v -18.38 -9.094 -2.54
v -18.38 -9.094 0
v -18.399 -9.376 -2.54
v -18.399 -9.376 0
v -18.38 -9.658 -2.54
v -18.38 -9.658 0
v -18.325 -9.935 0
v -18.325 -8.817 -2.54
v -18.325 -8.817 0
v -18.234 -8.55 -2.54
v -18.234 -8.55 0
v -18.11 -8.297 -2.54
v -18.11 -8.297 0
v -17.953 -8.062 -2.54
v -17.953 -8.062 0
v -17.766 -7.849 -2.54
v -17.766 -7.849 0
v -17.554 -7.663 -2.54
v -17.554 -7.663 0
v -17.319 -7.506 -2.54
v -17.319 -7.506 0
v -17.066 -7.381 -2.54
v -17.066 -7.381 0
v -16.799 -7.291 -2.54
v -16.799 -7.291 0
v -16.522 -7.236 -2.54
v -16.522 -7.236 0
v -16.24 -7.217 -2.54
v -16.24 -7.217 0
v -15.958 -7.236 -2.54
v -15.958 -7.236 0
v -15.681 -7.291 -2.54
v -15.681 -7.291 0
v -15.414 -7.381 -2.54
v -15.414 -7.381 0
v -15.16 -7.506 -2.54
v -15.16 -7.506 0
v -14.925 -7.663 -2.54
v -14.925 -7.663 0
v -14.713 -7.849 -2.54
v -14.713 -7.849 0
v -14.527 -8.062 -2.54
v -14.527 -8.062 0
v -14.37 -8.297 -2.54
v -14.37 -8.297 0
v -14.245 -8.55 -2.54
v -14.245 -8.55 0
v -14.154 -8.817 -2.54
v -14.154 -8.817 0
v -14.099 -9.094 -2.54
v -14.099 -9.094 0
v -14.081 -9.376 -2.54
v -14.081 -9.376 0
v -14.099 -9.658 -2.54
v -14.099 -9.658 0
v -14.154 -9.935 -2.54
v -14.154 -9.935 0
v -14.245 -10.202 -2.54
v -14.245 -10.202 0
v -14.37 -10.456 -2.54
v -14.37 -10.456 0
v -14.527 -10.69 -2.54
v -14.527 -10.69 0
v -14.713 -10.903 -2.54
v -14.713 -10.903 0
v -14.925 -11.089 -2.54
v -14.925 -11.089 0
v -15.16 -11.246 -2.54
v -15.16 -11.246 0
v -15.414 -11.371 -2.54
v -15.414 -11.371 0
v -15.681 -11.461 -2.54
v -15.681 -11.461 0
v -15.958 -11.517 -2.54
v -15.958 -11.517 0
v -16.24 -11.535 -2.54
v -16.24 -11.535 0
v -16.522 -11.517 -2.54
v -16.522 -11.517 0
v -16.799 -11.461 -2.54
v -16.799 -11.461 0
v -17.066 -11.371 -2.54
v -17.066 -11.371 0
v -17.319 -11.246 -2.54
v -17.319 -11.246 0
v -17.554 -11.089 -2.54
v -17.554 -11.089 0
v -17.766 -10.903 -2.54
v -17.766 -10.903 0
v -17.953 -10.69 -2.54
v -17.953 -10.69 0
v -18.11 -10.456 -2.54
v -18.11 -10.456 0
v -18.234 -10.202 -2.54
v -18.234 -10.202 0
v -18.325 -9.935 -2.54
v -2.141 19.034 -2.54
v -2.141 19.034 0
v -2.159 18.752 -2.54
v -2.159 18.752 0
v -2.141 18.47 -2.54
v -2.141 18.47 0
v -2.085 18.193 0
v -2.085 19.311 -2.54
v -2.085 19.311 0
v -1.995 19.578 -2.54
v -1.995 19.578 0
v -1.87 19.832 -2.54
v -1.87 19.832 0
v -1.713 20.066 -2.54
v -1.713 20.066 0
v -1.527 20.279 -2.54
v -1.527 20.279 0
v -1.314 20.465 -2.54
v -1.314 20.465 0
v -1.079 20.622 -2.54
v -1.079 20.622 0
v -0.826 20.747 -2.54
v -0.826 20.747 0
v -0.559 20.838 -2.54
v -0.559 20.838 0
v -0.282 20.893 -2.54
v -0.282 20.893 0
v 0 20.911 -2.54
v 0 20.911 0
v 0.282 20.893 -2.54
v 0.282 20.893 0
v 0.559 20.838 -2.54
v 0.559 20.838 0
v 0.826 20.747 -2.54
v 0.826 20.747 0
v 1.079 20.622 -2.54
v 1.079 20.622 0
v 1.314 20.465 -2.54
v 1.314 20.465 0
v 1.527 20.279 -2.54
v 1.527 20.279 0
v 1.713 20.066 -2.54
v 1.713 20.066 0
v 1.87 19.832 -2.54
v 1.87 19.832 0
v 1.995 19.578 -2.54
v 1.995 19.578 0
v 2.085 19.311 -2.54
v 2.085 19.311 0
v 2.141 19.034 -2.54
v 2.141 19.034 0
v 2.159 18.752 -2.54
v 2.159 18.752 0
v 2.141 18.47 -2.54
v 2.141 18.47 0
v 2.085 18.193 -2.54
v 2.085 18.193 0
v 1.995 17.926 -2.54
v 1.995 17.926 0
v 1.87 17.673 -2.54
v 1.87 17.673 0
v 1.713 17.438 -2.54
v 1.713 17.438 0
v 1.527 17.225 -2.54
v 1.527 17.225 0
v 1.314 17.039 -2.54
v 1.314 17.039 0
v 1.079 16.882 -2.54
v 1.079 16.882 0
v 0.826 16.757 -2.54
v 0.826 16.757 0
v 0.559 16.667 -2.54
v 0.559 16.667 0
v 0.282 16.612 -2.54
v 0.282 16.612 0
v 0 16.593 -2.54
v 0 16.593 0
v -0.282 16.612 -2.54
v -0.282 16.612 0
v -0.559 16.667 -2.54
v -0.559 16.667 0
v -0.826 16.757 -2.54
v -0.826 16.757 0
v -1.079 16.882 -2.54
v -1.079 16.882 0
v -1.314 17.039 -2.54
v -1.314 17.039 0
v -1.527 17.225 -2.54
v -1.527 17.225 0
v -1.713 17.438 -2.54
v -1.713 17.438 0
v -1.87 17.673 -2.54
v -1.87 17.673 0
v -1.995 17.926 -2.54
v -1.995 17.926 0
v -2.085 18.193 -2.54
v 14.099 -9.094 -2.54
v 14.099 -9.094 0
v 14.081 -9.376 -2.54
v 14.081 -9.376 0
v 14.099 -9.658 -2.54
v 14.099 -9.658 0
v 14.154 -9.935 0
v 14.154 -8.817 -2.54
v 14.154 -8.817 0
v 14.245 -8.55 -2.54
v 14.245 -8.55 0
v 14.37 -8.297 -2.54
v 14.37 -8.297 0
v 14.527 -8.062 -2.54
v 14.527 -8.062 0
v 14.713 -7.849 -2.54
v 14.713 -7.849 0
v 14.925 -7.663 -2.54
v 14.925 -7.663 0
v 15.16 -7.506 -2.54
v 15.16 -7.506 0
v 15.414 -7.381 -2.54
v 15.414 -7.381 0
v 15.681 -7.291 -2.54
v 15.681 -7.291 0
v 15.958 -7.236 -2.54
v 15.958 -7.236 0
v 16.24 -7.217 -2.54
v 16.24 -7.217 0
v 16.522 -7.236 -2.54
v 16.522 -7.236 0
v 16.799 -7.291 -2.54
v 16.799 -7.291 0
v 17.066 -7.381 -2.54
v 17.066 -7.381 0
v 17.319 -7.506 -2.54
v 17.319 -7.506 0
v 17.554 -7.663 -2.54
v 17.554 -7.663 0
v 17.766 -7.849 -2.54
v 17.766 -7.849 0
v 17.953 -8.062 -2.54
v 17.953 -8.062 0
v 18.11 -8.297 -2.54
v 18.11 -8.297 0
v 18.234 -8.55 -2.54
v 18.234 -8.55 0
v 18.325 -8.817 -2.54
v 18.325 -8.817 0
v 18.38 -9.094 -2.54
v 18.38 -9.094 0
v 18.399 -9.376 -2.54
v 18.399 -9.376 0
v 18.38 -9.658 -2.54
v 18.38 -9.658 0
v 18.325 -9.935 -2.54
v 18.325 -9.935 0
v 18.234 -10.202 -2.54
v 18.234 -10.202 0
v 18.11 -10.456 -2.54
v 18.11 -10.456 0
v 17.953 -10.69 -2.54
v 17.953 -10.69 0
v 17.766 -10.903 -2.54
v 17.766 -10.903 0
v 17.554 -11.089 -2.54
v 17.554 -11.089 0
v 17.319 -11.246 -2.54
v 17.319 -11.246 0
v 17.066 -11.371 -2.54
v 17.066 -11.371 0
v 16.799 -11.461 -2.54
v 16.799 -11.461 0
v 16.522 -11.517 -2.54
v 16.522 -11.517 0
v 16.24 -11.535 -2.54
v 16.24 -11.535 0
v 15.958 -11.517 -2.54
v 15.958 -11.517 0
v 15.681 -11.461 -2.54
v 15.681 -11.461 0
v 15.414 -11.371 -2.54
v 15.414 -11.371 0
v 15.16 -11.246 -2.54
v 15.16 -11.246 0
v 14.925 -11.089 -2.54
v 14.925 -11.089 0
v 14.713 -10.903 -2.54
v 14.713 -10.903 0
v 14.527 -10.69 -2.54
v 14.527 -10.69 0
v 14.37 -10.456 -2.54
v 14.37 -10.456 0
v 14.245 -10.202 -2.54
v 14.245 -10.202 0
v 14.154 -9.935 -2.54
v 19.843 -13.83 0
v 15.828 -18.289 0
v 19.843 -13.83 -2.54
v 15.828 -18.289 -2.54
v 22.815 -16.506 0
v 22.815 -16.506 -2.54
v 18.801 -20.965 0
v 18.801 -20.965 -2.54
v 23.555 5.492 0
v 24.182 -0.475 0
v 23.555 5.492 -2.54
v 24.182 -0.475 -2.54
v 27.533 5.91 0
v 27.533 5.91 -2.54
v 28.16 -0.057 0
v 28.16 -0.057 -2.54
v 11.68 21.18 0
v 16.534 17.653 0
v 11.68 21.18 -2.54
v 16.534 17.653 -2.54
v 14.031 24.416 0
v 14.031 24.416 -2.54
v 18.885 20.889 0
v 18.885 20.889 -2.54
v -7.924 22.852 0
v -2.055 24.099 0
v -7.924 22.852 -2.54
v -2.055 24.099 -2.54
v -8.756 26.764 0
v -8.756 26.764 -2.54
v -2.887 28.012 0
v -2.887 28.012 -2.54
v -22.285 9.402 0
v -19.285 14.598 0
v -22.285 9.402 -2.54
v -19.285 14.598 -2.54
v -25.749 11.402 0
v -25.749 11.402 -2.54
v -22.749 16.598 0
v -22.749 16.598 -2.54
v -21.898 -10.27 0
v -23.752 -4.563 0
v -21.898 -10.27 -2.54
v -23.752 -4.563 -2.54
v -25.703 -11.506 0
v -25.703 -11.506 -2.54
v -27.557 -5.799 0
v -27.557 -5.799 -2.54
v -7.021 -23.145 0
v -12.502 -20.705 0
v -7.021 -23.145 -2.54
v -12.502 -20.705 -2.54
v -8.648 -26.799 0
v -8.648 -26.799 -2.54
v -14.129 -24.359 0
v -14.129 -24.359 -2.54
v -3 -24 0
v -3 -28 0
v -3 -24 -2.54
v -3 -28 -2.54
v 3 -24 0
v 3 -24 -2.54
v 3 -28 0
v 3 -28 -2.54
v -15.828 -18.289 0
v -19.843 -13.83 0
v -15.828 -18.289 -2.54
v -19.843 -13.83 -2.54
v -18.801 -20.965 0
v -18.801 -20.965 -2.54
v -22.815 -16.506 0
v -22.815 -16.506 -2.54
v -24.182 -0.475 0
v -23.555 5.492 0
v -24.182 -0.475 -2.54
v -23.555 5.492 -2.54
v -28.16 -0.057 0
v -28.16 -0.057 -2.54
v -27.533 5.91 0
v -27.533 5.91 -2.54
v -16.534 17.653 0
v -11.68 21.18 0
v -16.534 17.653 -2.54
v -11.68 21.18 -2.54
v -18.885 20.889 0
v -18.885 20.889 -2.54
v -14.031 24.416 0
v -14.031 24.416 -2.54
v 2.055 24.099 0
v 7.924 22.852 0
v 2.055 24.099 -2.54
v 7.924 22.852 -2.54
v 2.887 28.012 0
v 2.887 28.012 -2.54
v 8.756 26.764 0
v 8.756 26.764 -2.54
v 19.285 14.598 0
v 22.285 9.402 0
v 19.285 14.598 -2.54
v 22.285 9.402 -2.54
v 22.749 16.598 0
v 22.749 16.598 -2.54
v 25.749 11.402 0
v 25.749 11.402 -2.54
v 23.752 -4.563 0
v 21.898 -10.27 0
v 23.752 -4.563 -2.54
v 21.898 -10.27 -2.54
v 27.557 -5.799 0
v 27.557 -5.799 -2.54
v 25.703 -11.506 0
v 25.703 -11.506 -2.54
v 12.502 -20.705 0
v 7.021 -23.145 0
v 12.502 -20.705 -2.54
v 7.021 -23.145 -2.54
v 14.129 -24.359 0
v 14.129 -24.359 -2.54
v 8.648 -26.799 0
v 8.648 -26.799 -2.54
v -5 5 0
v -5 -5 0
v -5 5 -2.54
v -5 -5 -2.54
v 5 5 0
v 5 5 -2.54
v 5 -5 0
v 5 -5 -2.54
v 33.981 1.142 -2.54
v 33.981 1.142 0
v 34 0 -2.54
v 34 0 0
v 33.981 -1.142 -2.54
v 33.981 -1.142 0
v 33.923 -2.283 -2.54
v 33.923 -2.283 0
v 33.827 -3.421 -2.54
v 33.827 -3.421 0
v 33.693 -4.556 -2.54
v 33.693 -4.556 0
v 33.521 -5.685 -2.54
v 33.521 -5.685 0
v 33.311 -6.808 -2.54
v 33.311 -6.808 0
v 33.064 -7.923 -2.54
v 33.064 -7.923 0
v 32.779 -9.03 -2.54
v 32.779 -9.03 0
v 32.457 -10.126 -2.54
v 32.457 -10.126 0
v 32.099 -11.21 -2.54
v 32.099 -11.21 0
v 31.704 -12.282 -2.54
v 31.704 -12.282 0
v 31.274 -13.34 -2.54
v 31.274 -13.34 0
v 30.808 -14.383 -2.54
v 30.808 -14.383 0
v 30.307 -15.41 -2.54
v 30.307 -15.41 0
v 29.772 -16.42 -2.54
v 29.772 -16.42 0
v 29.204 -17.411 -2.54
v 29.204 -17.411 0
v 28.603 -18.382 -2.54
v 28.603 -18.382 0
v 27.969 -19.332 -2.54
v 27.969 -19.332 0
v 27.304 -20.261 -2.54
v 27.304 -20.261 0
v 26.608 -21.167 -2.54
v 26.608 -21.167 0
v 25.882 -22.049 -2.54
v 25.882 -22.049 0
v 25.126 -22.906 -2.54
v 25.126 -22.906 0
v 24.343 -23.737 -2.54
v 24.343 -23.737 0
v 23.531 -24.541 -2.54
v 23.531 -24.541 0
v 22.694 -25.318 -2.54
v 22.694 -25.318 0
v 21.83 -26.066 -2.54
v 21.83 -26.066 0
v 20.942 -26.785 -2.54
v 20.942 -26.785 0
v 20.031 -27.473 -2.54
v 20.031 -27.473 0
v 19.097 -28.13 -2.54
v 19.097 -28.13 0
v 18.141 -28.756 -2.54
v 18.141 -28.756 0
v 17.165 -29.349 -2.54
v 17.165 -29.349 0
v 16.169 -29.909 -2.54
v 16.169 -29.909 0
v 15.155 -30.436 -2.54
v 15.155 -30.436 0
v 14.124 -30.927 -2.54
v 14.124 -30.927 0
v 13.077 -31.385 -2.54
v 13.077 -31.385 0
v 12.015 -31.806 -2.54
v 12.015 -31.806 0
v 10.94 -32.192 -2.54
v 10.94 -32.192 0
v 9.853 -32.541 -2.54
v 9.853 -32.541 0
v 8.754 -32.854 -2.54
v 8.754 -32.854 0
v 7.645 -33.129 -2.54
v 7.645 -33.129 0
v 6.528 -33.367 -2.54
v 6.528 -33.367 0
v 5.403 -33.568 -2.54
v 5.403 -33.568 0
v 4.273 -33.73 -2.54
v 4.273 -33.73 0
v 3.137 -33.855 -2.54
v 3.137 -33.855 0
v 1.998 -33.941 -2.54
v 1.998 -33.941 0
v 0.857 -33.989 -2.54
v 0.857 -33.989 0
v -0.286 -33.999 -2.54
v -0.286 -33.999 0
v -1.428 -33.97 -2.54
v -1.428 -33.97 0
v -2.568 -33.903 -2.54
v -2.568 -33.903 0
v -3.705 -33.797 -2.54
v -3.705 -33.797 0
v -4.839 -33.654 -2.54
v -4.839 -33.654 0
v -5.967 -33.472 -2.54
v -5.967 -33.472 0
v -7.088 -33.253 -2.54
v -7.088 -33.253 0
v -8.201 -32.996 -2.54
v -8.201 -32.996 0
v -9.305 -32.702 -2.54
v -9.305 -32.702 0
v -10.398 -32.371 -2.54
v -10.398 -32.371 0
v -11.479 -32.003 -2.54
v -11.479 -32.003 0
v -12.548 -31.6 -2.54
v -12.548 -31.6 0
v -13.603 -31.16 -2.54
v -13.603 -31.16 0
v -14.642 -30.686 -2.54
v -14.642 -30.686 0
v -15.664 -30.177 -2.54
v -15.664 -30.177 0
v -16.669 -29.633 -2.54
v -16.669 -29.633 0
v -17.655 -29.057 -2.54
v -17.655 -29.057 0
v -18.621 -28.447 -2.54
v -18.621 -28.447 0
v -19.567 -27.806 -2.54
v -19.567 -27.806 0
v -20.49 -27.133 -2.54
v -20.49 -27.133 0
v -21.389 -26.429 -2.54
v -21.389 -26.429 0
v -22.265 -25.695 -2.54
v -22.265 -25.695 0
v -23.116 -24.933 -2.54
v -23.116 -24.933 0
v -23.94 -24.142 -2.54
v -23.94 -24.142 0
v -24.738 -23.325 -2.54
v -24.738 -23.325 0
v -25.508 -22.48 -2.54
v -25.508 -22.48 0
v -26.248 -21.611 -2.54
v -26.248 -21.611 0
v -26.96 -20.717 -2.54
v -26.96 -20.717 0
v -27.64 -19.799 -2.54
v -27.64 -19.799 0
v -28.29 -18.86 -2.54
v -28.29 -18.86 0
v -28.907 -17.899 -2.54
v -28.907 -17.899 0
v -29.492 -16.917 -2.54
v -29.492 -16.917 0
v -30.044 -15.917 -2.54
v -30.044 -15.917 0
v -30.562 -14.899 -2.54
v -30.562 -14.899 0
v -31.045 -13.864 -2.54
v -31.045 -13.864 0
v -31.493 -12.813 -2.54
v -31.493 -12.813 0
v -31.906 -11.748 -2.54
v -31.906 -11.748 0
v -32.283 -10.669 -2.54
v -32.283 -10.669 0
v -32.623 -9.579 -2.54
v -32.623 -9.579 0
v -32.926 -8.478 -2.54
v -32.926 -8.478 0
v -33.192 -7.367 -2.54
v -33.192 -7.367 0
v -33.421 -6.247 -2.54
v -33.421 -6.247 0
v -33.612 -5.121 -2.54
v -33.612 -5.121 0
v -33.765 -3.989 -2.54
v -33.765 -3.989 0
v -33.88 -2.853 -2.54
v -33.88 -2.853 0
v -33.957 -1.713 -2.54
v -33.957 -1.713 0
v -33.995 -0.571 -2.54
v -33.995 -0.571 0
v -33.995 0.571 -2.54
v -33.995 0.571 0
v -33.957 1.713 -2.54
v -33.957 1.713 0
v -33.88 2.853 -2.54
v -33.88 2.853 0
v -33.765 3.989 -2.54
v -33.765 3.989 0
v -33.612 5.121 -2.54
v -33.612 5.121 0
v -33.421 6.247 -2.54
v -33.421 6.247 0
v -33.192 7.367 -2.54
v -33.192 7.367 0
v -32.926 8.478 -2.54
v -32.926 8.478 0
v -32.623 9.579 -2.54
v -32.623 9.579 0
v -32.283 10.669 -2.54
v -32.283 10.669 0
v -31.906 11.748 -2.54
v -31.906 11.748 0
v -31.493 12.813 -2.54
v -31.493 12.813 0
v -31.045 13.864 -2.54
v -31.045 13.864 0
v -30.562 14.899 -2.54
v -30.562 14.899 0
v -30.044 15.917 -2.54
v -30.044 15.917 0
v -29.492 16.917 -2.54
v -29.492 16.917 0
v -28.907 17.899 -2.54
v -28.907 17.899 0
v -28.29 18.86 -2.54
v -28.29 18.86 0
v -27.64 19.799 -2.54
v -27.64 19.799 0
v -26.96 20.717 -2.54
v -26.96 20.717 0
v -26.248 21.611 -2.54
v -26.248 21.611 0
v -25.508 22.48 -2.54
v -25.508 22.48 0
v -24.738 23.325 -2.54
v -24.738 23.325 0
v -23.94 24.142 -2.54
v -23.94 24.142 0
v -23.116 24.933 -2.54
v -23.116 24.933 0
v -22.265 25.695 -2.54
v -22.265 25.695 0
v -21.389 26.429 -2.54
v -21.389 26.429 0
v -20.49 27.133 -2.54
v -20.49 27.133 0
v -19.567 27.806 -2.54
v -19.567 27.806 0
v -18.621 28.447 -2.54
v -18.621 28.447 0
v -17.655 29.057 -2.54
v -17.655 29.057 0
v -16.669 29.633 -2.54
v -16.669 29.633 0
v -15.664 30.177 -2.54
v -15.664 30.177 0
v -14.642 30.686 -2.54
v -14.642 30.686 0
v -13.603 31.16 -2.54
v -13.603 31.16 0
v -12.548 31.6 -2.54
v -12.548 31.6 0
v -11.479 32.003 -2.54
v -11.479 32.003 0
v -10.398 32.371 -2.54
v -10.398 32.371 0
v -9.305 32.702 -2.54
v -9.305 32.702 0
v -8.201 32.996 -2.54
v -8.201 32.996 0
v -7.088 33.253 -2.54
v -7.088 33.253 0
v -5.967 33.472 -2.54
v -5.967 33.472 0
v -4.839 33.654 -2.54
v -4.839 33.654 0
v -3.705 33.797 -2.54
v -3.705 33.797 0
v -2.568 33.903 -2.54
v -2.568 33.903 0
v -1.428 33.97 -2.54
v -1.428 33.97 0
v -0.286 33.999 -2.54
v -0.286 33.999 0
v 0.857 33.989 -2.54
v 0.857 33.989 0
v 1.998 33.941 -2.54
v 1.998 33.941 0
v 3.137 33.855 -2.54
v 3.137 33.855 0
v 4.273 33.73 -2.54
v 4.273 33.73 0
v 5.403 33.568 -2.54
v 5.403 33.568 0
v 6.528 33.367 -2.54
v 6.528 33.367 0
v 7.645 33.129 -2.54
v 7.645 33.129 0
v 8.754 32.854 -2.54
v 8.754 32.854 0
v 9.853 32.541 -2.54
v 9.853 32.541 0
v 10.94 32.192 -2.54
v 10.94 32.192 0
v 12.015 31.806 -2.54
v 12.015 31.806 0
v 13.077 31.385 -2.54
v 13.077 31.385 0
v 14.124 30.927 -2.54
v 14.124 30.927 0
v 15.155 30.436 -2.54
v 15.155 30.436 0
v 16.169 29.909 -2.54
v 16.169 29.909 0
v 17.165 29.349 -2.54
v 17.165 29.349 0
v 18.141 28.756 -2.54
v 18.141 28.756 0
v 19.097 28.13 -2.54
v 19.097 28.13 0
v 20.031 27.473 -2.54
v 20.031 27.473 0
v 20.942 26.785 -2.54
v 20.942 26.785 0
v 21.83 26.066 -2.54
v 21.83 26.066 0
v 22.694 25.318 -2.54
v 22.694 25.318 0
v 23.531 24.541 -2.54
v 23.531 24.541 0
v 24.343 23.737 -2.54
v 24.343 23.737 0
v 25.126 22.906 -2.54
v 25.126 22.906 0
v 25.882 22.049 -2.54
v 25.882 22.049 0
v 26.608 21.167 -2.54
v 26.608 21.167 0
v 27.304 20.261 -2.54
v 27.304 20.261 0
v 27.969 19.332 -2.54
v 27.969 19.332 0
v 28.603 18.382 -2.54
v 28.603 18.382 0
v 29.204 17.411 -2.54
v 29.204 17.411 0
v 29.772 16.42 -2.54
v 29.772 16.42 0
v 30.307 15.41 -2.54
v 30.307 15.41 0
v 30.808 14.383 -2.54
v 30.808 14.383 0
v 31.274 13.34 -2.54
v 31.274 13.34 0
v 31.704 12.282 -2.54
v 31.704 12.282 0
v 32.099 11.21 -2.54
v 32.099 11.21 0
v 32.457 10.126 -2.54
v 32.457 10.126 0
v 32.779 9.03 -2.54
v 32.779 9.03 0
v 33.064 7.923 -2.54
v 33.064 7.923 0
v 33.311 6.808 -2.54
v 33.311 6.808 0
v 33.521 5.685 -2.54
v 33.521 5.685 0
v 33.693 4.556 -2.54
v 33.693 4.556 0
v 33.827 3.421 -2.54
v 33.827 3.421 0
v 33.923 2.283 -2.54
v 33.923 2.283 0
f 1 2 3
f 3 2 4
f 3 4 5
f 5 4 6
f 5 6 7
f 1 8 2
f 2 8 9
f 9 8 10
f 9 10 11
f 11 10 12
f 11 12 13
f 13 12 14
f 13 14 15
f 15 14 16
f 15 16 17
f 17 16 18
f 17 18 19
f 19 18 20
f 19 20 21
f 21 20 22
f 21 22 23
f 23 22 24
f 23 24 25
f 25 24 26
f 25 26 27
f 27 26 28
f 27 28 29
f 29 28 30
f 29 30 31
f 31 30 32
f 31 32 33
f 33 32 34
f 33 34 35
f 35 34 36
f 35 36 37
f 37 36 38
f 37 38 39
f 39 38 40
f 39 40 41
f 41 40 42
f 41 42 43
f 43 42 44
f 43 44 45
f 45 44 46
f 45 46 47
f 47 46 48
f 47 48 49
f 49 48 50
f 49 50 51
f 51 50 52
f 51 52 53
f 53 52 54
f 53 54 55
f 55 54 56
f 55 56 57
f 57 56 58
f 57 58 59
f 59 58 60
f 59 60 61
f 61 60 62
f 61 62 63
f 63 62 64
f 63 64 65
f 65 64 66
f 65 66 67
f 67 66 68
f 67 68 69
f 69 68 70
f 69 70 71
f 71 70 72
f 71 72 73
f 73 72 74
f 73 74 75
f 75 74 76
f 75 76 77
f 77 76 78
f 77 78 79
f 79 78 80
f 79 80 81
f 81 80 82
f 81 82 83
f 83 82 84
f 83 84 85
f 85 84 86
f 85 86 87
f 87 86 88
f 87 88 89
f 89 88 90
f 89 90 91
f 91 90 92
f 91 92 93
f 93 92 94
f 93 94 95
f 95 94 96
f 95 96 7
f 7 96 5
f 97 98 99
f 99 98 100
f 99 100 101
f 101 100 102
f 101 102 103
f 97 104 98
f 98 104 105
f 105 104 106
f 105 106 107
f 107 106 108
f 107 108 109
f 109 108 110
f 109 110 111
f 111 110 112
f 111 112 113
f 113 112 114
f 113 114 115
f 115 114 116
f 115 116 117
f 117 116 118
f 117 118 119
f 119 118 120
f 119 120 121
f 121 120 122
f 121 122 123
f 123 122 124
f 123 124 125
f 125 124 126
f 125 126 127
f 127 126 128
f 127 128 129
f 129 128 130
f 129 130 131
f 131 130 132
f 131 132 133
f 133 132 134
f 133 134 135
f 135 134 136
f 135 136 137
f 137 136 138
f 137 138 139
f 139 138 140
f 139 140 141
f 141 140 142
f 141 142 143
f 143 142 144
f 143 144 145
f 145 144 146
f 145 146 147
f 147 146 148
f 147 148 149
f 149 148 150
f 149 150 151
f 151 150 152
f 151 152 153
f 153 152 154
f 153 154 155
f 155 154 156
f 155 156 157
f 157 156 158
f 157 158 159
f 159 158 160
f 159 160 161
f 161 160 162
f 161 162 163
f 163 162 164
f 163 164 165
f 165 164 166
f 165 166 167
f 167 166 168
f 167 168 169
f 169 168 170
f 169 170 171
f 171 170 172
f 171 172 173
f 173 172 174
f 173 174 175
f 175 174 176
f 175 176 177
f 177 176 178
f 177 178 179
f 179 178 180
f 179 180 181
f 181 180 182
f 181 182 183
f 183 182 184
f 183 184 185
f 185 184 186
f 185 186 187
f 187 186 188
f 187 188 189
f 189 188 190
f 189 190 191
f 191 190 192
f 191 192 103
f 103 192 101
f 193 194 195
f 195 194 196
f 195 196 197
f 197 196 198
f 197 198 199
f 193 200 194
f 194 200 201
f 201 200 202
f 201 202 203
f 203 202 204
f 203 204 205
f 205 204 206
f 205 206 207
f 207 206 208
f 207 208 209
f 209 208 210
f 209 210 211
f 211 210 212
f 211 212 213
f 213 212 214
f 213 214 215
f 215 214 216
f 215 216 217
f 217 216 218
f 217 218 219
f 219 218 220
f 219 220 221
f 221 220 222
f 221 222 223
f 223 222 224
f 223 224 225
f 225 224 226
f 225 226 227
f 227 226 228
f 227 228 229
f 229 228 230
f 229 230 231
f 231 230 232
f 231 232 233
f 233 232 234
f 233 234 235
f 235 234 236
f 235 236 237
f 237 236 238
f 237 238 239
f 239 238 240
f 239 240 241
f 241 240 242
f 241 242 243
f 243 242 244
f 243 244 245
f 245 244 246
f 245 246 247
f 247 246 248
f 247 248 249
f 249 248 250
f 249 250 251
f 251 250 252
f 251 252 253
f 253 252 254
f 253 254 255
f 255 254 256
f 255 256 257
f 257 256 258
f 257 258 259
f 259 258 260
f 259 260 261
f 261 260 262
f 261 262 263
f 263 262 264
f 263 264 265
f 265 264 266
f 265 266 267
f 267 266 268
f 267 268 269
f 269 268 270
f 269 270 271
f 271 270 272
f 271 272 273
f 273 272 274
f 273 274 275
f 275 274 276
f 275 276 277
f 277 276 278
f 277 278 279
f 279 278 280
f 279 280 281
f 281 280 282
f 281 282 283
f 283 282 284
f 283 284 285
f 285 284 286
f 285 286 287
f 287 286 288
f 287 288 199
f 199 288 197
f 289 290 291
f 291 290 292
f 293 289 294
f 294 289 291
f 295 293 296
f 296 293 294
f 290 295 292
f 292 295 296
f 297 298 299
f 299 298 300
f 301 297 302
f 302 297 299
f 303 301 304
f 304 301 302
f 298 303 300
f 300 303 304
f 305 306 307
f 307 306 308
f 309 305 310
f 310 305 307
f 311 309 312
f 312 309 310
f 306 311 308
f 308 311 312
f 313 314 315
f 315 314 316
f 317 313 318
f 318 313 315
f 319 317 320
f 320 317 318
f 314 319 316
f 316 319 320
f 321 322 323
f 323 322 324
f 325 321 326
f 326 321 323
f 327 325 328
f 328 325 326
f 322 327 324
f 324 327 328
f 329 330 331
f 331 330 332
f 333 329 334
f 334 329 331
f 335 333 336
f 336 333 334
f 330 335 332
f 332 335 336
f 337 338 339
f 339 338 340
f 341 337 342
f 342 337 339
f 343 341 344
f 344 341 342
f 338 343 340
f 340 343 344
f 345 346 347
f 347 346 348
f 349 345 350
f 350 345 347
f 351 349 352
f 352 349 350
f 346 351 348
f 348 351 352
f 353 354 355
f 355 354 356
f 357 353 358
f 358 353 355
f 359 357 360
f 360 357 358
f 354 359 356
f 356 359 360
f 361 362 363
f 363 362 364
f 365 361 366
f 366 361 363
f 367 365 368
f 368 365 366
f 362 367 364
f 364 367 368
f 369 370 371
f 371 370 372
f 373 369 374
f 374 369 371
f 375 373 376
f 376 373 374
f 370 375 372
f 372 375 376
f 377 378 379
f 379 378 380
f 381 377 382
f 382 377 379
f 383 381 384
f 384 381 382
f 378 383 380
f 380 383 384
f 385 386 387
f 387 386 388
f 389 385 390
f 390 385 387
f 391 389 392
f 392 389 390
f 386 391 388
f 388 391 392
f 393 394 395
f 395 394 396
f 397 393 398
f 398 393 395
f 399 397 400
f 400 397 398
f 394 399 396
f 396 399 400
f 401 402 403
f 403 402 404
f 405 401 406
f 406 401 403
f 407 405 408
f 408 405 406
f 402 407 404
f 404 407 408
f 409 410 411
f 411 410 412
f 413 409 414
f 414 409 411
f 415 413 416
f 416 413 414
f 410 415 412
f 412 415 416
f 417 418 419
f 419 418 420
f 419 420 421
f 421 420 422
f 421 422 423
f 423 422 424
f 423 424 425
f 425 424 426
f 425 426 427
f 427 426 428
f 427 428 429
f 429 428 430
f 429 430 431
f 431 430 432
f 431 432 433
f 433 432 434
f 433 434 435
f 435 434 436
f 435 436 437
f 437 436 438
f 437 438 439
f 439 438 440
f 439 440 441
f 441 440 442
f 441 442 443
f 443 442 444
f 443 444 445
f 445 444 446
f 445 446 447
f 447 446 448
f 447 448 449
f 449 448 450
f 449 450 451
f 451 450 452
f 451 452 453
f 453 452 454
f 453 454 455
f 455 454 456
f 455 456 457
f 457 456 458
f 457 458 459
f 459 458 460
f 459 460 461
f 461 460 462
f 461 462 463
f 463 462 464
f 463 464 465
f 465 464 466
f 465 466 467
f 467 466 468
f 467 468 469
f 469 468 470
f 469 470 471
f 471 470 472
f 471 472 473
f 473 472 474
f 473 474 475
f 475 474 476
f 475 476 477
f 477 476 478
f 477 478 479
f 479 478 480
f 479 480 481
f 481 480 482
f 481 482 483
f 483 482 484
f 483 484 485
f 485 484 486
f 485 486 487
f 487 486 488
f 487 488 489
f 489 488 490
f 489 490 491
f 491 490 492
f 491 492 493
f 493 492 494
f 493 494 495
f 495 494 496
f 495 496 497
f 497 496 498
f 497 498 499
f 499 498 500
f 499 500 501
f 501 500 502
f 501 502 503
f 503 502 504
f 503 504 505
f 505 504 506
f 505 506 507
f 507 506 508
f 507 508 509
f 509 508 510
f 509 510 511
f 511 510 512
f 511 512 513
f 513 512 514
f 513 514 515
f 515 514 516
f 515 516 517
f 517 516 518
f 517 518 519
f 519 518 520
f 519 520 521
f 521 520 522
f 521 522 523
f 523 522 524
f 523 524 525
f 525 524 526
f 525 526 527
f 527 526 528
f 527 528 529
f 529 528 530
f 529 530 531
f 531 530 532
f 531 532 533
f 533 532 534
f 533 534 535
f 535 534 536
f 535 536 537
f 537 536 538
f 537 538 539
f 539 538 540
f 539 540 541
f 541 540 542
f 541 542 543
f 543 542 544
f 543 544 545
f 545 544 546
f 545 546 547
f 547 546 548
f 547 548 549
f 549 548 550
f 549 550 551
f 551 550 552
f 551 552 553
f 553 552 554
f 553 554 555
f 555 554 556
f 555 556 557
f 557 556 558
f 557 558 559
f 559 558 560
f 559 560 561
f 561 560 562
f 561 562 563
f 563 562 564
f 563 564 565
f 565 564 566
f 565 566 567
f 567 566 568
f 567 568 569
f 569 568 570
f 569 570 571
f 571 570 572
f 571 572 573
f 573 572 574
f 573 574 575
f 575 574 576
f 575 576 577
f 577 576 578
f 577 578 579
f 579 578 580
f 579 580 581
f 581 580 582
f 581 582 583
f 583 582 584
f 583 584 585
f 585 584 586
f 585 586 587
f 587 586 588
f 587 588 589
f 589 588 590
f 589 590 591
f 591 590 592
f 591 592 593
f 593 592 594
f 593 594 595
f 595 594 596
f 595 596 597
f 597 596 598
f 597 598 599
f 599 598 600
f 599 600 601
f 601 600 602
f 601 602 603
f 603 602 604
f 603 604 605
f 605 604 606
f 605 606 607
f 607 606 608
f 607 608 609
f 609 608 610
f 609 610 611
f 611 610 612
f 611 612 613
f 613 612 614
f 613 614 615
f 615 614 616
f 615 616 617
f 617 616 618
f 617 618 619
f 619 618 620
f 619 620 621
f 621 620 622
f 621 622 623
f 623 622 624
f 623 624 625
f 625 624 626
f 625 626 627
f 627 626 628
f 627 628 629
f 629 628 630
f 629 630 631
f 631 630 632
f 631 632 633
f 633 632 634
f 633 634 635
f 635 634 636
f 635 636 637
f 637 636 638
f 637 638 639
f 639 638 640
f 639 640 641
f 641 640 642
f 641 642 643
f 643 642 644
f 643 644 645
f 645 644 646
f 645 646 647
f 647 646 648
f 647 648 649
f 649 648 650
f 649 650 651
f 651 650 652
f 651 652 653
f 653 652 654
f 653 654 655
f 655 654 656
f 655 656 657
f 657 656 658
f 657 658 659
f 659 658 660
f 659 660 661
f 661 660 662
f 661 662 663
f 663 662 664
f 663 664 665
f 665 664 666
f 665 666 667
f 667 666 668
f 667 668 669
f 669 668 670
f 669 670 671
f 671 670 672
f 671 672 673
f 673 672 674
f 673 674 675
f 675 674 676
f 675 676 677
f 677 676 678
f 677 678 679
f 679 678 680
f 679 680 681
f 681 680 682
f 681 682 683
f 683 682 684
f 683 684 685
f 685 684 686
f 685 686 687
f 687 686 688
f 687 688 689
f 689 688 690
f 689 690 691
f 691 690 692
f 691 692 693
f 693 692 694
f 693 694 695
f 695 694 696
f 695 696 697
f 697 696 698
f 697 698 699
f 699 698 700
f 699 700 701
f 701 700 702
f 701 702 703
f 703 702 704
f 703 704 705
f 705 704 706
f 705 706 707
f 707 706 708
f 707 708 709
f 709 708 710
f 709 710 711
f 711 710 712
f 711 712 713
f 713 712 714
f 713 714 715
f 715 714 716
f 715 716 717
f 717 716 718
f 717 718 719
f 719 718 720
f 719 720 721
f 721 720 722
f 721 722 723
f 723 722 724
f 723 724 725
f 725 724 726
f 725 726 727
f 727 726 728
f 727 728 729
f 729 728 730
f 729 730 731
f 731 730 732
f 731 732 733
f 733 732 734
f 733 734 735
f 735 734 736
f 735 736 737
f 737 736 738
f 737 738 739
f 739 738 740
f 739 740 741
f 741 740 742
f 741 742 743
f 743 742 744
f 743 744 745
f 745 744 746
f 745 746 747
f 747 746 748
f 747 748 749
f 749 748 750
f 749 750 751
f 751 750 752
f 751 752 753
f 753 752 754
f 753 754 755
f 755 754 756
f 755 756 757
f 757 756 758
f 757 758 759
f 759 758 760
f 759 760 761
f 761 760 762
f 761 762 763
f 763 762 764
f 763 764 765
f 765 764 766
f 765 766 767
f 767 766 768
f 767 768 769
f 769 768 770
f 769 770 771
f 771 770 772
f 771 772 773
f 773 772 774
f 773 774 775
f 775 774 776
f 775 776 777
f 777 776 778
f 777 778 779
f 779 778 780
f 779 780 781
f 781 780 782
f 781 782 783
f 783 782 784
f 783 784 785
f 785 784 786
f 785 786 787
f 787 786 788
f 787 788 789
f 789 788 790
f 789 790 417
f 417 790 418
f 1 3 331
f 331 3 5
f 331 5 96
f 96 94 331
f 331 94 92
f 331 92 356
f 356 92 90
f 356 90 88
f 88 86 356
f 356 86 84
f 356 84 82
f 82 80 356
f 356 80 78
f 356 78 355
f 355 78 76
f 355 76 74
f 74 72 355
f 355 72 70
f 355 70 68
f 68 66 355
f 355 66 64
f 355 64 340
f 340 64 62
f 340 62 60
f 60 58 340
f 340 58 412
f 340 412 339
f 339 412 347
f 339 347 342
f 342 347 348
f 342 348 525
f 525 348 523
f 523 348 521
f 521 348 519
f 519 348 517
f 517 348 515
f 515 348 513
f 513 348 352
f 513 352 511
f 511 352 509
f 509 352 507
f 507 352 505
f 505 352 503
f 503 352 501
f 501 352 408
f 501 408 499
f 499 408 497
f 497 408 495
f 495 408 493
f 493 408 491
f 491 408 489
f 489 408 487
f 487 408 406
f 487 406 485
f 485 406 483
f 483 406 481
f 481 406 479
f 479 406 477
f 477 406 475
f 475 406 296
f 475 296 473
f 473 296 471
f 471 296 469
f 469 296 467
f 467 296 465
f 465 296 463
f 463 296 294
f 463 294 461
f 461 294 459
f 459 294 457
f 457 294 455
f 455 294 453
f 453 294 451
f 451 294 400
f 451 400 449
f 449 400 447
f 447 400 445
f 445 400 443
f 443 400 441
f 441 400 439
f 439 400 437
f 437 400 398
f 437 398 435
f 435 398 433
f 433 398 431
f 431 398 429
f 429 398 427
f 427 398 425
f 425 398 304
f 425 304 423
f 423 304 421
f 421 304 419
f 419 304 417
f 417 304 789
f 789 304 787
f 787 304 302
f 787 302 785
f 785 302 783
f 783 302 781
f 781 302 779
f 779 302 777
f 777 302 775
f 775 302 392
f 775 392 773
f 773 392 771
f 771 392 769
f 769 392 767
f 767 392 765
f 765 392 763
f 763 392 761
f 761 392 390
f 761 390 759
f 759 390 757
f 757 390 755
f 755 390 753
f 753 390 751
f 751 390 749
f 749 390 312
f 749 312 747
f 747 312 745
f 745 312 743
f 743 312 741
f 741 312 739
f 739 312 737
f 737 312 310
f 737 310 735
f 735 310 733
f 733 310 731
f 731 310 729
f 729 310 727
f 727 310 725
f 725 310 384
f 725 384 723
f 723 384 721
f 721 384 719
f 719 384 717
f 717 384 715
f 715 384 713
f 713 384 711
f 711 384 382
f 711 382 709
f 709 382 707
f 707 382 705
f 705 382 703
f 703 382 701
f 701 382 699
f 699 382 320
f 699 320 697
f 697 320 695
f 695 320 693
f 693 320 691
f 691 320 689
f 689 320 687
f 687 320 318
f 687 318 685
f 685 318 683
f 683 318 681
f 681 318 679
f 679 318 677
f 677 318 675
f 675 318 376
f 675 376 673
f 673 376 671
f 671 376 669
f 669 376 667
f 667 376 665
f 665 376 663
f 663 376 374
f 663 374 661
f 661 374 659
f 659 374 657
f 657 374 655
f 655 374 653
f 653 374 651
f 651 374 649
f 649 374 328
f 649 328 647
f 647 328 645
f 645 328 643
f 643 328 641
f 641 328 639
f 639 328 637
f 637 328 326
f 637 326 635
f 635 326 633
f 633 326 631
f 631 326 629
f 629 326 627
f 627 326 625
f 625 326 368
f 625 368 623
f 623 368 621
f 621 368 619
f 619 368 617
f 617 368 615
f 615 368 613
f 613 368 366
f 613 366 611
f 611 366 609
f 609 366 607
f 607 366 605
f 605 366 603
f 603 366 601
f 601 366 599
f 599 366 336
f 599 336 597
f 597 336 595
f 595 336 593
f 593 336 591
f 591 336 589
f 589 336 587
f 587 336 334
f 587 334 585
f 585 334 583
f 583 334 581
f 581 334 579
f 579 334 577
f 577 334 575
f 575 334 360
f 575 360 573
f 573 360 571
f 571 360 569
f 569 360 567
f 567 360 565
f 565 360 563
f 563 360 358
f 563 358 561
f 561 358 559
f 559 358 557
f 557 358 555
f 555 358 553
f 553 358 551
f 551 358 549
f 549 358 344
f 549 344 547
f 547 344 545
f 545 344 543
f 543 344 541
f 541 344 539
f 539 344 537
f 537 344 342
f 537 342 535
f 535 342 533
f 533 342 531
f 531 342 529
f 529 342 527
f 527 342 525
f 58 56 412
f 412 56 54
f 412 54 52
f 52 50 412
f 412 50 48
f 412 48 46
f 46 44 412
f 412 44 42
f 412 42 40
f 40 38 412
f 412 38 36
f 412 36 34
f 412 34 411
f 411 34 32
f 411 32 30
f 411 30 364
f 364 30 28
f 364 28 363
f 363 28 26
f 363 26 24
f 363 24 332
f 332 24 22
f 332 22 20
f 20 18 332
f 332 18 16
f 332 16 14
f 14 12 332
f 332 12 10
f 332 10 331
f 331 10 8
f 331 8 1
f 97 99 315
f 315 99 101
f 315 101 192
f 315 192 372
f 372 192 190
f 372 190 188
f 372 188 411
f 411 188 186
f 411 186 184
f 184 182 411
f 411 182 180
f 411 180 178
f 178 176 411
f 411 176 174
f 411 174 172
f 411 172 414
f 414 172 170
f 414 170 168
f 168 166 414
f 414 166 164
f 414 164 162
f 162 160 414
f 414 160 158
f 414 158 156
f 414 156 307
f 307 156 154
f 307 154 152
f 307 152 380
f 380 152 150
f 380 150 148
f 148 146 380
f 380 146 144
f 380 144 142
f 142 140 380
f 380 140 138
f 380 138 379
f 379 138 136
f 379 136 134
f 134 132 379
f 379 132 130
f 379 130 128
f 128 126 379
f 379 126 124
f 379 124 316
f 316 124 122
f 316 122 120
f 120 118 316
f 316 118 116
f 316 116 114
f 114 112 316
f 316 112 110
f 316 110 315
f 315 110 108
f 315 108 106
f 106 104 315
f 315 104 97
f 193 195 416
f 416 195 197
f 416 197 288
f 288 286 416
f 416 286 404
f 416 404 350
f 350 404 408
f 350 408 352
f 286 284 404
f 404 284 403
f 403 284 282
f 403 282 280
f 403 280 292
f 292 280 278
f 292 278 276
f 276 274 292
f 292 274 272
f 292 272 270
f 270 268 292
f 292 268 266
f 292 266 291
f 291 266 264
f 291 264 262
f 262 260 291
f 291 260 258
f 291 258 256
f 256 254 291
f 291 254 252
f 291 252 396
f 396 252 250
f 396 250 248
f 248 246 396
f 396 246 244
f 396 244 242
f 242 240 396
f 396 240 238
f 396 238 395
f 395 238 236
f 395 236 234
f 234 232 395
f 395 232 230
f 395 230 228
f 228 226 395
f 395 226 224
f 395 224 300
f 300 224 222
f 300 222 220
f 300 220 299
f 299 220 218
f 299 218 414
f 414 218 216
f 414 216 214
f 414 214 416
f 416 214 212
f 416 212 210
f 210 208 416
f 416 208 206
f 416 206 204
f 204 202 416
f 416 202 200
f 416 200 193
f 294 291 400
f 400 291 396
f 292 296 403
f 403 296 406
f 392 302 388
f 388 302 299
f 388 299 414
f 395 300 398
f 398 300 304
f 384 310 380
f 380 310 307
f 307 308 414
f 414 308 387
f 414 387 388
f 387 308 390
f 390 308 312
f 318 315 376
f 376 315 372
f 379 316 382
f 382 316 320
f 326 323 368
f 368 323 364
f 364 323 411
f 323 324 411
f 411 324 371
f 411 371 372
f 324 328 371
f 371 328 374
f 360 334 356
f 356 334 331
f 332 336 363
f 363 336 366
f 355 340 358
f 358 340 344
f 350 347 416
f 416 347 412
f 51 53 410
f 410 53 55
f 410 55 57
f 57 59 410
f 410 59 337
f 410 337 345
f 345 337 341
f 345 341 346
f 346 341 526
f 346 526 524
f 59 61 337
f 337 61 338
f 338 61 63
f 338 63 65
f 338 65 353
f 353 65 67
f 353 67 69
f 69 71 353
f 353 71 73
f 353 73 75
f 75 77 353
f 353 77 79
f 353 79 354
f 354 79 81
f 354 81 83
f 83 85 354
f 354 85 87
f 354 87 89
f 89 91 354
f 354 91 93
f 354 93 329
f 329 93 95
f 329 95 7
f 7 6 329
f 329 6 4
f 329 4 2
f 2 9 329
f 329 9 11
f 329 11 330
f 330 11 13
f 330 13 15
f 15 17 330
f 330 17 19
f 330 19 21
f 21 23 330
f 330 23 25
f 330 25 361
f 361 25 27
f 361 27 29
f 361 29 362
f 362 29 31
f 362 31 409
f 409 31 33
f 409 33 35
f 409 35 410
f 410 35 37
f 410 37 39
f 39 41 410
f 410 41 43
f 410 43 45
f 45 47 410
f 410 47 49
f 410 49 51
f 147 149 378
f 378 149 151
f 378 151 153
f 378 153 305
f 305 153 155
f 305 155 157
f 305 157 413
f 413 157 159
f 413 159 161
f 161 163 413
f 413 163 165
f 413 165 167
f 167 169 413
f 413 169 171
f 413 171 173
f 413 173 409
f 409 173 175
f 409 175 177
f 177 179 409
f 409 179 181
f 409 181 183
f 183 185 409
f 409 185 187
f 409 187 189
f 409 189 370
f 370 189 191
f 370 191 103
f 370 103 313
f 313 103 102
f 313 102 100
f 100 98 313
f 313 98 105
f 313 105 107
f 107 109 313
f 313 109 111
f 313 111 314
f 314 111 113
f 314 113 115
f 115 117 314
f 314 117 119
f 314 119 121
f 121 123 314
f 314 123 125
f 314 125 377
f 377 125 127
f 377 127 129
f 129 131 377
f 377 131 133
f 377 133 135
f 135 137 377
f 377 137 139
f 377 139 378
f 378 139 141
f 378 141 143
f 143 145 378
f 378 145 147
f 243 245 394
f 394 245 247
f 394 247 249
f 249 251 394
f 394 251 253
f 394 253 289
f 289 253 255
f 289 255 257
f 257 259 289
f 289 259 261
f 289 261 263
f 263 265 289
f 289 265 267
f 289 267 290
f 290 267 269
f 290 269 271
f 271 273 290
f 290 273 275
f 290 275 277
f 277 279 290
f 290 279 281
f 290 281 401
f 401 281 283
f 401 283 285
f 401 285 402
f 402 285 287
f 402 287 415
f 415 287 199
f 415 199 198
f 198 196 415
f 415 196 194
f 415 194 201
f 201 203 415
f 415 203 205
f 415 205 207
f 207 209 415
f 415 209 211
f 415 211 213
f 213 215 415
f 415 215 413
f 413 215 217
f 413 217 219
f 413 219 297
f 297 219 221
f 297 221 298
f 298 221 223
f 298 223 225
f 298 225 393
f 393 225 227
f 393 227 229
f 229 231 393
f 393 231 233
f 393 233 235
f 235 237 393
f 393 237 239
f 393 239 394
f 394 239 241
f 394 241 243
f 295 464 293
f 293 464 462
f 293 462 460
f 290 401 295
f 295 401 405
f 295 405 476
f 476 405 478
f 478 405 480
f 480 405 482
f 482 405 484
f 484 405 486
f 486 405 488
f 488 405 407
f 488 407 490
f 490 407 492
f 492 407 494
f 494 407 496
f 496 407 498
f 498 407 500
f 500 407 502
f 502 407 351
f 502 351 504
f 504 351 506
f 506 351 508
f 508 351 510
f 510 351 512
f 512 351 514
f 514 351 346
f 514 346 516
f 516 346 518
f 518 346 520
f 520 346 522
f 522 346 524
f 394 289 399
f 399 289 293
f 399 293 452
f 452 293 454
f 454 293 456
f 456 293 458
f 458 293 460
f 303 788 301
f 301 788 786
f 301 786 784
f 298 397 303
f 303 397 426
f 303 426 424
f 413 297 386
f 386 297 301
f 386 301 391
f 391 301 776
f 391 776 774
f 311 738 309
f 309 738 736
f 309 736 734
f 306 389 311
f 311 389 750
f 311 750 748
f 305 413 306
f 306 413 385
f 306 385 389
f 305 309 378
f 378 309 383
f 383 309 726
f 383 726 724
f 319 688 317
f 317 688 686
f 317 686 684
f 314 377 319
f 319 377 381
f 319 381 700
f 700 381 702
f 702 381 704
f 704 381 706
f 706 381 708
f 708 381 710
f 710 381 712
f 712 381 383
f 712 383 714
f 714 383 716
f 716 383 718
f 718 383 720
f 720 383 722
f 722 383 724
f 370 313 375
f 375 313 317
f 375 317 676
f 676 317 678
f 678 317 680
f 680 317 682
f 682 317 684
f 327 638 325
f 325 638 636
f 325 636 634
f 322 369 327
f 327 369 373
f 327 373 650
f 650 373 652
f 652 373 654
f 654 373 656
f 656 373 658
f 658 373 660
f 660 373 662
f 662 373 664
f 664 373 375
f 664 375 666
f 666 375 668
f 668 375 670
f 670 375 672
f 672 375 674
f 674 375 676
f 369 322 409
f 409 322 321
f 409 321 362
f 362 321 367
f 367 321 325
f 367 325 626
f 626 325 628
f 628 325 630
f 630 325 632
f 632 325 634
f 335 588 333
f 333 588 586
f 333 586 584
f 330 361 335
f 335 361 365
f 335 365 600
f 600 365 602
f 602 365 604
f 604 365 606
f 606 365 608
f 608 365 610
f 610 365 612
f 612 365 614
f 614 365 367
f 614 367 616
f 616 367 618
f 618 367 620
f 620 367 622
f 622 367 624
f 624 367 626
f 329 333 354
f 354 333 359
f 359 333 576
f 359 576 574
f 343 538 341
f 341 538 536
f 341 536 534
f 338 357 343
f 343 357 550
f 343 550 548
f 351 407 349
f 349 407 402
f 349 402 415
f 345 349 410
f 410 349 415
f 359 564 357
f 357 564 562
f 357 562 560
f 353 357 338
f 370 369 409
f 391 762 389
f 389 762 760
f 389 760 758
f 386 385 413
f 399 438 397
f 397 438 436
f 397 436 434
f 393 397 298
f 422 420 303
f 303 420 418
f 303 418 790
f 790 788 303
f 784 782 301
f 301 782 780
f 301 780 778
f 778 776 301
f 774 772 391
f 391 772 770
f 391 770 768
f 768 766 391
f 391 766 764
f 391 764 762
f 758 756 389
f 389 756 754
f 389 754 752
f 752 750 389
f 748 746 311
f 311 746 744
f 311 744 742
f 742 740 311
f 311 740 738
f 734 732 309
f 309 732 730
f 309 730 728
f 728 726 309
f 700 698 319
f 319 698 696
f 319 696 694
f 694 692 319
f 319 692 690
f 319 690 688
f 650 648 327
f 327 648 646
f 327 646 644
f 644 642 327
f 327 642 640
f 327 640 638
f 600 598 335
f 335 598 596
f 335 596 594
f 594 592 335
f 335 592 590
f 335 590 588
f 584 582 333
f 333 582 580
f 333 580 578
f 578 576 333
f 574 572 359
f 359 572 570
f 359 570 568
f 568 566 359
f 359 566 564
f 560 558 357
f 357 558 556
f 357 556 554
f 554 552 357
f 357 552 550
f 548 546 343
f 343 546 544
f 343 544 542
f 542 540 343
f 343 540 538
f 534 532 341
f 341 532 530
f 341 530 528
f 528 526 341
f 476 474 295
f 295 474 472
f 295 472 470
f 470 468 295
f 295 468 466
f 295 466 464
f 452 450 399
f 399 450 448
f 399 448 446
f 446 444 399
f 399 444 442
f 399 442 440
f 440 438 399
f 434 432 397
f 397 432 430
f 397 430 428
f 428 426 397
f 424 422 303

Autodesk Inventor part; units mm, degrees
ref_plane "YZ Plane" through (0, 0, 0) normal (1, 0, 0) x (0, 1, 0)
ref_plane "XZ Plane" through (0, 0, 0) normal (0, 1, 0) x (-1, 0, 0)
ref_plane "XY Plane" through (0, 0, 0) normal (0, 0, 1) x (1, 0, 0)
sketch "Sketch1" plane through (0, 0, 0) normal (0, 0, 1) x (1, 0, 0)
  circle A0 centre (0, 0) radius 34
  dimension "d0" = 68
extrude "Extrusion1" add sketch "Sketch1" against normal blind 2.54
sketch "Sketch2" plane through (0, 0, -2.54) normal (0, 0, -1) x (-1, 0, 0)
  line L0 (5, 5) -> (-5, 5)
  line L1 (-5, 5) -> (-5, -5)
  line L2 (-5, -5) -> (5, -5)
  line L3 (5, -5) -> (5, 5)
  line L4 (5, 5) -> (-5, -5) construction
  line L5 (-5, 5) -> (5, -5) construction
  point P0 (0, 0)
  dimension "d3" = 10
extrude "Extrusion2" cut sketch "Sketch2" against normal through all
sketch "Sketch3" plane through (0, 0, -2.54) normal (0, 0, -1) x (-1, 0, 0)
  circle A0 centre (0, 0) radius 26 construction
  line L0 (3, -24) -> (-3, -24)
  line L1 (-3, -24) -> (-3, -28)
  line L2 (-3, -28) -> (3, -28)
  line L3 (3, -28) -> (3, -24)
  line L4 (3, -24) -> (-3, -28) construction
  line L5 (-3, -24) -> (3, -28) construction
  line L6 (8.648, -26.7995) -> (14.1293, -24.3591)
  line L7 (14.1293, -24.3591) -> (12.5023, -20.7049)
  line L8 (7.021, -23.1453) -> (8.648, -26.7995)
  line L9 (12.5023, -20.7049) -> (7.021, -23.1453)
  line L10 (18.8007, -20.9651) -> (22.8154, -16.5062)
  line L11 (22.8154, -16.5062) -> (19.8429, -13.8297)
  line L12 (15.8281, -18.2886) -> (18.8007, -20.9651)
  line L13 (19.8429, -13.8297) -> (15.8281, -18.2886)
  line L14 (25.7025, -11.5056) -> (27.5566, -5.7993)
  line L15 (27.5566, -5.7993) -> (23.7524, -4.5632)
  line L16 (21.8983, -10.2696) -> (25.7025, -11.5056)
  line L17 (23.7524, -4.5632) -> (21.8983, -10.2696)
  line L18 (28.1602, -0.0568) -> (27.533, 5.9104)
  line L19 (27.533, 5.9104) -> (23.5549, 5.4922)
  line L20 (24.1821, -0.4749) -> (28.1602, -0.0568)
  line L21 (23.5549, 5.4922) -> (24.1821, -0.4749)
  line L22 (25.7487, 11.4019) -> (22.7487, 16.5981)
  line L23 (22.7487, 16.5981) -> (19.2846, 14.5981)
  line L24 (22.2846, 9.4019) -> (25.7487, 11.4019)
  line L25 (19.2846, 14.5981) -> (22.2846, 9.4019)
  line L26 (18.885, 20.8891) -> (14.0309, 24.4158)
  line L27 (14.0309, 24.4158) -> (11.6798, 21.1798)
  line L28 (16.5339, 17.6531) -> (18.885, 20.8891)
  line L29 (11.6798, 21.1798) -> (16.5339, 17.6531)
  line L30 (8.756, 26.7644) -> (2.8871, 28.0119)
  line L31 (2.8871, 28.0119) -> (2.0554, 24.0993)
  line L32 (7.9243, 22.8518) -> (8.756, 26.7644)
  line L33 (2.0554, 24.0993) -> (7.9243, 22.8518)
  line L34 (-2.8871, 28.0119) -> (-8.756, 26.7644)
  line L35 (-8.756, 26.7644) -> (-7.9243, 22.8518)
  line L36 (-2.0554, 24.0993) -> (-2.8871, 28.0119)
  line L37 (-7.9243, 22.8518) -> (-2.0554, 24.0993)
  line L38 (-14.0309, 24.4158) -> (-18.885, 20.8891)
  line L39 (-18.885, 20.8891) -> (-16.5339, 17.6531)
  line L40 (-11.6798, 21.1798) -> (-14.0309, 24.4158)
  line L41 (-16.5339, 17.6531) -> (-11.6798, 21.1798)
  line L42 (-22.7487, 16.5981) -> (-25.7487, 11.4019)
  line L43 (-25.7487, 11.4019) -> (-22.2846, 9.4019)
  line L44 (-19.2846, 14.5981) -> (-22.7487, 16.5981)
  line L45 (-22.2846, 9.4019) -> (-19.2846, 14.5981)
  line L46 (-27.533, 5.9104) -> (-28.1602, -0.0568)
  line L47 (-28.1602, -0.0568) -> (-24.1821, -0.4749)
  line L48 (-23.5549, 5.4922) -> (-27.533, 5.9104)
  line L49 (-24.1821, -0.4749) -> (-23.5549, 5.4922)
  line L50 (-27.5566, -5.7993) -> (-25.7025, -11.5056)
  line L51 (-25.7025, -11.5056) -> (-21.8983, -10.2696)
  line L52 (-23.7524, -4.5632) -> (-27.5566, -5.7993)
  line L53 (-21.8983, -10.2696) -> (-23.7524, -4.5632)
  line L54 (-22.8154, -16.5062) -> (-18.8007, -20.9651)
  line L55 (-18.8007, -20.9651) -> (-15.8281, -18.2886)
  line L56 (-19.8429, -13.8297) -> (-22.8154, -16.5062)
  line L57 (-15.8281, -18.2886) -> (-19.8429, -13.8297)
  line L58 (-14.1293, -24.3591) -> (-8.648, -26.7995)
  line L59 (-8.648, -26.7995) -> (-7.021, -23.1453)
  line L60 (-12.5023, -20.7049) -> (-14.1293, -24.3591)
  line L61 (-7.021, -23.1453) -> (-12.5023, -20.7049)
  point P0 (0, -26)
  dimension "d6" = 52
  dimension "d7" = 4
  dimension "d8" = 6
  dimension "d11" = 360
extrude "Extrusion3" cut sketch "Sketch3" against normal through all
sketch "Sketch4" plane through (0, 0, 0) normal (0, 0, 1) x (1, 0, 0)
  line L0 (-18.7521, 0) -> (0, 0) construction
  line L1 (0, 0) -> (0, 18.7521) construction
  circle A0 centre (0, 0) radius 18.7521 construction
  point P0 (-16.2398, -9.376)
  point P1 (16.2398, -9.3761)
  dimension "d15" = 37.5042
  dimension "d16" = 18.7521
  dimension "d17" = 90
  dimension "d20" = 360
hole "Hole1" at (0, 18.7521, 0) at (-16.2398, -9.376, 0) at (16.2398, -9.3761, 0) direction (0, 0, -1) diameter 4.318 end through all clearance for "Flat Head Machine Screw (82)" size "#6" standard "Ansi Unified Screw Threads"
equation "\"d1\" = CoverDepth"
equation "\"d6\" = 2 * LightRingCenterRadius"
equation "\"d15\" = SupportScrewsDiameter"
equation "\"d16\" = 0.5 * SupportScrewsDiameter"
equation "\"CoverDepth\" = 2.54"
equation "\"LightRingCenterRadius\" = 26"
equation "\"SupportScrewsDiameter\" = 37.5042"
properties part number "MountCover" material "Polycarbonate, Clear"
